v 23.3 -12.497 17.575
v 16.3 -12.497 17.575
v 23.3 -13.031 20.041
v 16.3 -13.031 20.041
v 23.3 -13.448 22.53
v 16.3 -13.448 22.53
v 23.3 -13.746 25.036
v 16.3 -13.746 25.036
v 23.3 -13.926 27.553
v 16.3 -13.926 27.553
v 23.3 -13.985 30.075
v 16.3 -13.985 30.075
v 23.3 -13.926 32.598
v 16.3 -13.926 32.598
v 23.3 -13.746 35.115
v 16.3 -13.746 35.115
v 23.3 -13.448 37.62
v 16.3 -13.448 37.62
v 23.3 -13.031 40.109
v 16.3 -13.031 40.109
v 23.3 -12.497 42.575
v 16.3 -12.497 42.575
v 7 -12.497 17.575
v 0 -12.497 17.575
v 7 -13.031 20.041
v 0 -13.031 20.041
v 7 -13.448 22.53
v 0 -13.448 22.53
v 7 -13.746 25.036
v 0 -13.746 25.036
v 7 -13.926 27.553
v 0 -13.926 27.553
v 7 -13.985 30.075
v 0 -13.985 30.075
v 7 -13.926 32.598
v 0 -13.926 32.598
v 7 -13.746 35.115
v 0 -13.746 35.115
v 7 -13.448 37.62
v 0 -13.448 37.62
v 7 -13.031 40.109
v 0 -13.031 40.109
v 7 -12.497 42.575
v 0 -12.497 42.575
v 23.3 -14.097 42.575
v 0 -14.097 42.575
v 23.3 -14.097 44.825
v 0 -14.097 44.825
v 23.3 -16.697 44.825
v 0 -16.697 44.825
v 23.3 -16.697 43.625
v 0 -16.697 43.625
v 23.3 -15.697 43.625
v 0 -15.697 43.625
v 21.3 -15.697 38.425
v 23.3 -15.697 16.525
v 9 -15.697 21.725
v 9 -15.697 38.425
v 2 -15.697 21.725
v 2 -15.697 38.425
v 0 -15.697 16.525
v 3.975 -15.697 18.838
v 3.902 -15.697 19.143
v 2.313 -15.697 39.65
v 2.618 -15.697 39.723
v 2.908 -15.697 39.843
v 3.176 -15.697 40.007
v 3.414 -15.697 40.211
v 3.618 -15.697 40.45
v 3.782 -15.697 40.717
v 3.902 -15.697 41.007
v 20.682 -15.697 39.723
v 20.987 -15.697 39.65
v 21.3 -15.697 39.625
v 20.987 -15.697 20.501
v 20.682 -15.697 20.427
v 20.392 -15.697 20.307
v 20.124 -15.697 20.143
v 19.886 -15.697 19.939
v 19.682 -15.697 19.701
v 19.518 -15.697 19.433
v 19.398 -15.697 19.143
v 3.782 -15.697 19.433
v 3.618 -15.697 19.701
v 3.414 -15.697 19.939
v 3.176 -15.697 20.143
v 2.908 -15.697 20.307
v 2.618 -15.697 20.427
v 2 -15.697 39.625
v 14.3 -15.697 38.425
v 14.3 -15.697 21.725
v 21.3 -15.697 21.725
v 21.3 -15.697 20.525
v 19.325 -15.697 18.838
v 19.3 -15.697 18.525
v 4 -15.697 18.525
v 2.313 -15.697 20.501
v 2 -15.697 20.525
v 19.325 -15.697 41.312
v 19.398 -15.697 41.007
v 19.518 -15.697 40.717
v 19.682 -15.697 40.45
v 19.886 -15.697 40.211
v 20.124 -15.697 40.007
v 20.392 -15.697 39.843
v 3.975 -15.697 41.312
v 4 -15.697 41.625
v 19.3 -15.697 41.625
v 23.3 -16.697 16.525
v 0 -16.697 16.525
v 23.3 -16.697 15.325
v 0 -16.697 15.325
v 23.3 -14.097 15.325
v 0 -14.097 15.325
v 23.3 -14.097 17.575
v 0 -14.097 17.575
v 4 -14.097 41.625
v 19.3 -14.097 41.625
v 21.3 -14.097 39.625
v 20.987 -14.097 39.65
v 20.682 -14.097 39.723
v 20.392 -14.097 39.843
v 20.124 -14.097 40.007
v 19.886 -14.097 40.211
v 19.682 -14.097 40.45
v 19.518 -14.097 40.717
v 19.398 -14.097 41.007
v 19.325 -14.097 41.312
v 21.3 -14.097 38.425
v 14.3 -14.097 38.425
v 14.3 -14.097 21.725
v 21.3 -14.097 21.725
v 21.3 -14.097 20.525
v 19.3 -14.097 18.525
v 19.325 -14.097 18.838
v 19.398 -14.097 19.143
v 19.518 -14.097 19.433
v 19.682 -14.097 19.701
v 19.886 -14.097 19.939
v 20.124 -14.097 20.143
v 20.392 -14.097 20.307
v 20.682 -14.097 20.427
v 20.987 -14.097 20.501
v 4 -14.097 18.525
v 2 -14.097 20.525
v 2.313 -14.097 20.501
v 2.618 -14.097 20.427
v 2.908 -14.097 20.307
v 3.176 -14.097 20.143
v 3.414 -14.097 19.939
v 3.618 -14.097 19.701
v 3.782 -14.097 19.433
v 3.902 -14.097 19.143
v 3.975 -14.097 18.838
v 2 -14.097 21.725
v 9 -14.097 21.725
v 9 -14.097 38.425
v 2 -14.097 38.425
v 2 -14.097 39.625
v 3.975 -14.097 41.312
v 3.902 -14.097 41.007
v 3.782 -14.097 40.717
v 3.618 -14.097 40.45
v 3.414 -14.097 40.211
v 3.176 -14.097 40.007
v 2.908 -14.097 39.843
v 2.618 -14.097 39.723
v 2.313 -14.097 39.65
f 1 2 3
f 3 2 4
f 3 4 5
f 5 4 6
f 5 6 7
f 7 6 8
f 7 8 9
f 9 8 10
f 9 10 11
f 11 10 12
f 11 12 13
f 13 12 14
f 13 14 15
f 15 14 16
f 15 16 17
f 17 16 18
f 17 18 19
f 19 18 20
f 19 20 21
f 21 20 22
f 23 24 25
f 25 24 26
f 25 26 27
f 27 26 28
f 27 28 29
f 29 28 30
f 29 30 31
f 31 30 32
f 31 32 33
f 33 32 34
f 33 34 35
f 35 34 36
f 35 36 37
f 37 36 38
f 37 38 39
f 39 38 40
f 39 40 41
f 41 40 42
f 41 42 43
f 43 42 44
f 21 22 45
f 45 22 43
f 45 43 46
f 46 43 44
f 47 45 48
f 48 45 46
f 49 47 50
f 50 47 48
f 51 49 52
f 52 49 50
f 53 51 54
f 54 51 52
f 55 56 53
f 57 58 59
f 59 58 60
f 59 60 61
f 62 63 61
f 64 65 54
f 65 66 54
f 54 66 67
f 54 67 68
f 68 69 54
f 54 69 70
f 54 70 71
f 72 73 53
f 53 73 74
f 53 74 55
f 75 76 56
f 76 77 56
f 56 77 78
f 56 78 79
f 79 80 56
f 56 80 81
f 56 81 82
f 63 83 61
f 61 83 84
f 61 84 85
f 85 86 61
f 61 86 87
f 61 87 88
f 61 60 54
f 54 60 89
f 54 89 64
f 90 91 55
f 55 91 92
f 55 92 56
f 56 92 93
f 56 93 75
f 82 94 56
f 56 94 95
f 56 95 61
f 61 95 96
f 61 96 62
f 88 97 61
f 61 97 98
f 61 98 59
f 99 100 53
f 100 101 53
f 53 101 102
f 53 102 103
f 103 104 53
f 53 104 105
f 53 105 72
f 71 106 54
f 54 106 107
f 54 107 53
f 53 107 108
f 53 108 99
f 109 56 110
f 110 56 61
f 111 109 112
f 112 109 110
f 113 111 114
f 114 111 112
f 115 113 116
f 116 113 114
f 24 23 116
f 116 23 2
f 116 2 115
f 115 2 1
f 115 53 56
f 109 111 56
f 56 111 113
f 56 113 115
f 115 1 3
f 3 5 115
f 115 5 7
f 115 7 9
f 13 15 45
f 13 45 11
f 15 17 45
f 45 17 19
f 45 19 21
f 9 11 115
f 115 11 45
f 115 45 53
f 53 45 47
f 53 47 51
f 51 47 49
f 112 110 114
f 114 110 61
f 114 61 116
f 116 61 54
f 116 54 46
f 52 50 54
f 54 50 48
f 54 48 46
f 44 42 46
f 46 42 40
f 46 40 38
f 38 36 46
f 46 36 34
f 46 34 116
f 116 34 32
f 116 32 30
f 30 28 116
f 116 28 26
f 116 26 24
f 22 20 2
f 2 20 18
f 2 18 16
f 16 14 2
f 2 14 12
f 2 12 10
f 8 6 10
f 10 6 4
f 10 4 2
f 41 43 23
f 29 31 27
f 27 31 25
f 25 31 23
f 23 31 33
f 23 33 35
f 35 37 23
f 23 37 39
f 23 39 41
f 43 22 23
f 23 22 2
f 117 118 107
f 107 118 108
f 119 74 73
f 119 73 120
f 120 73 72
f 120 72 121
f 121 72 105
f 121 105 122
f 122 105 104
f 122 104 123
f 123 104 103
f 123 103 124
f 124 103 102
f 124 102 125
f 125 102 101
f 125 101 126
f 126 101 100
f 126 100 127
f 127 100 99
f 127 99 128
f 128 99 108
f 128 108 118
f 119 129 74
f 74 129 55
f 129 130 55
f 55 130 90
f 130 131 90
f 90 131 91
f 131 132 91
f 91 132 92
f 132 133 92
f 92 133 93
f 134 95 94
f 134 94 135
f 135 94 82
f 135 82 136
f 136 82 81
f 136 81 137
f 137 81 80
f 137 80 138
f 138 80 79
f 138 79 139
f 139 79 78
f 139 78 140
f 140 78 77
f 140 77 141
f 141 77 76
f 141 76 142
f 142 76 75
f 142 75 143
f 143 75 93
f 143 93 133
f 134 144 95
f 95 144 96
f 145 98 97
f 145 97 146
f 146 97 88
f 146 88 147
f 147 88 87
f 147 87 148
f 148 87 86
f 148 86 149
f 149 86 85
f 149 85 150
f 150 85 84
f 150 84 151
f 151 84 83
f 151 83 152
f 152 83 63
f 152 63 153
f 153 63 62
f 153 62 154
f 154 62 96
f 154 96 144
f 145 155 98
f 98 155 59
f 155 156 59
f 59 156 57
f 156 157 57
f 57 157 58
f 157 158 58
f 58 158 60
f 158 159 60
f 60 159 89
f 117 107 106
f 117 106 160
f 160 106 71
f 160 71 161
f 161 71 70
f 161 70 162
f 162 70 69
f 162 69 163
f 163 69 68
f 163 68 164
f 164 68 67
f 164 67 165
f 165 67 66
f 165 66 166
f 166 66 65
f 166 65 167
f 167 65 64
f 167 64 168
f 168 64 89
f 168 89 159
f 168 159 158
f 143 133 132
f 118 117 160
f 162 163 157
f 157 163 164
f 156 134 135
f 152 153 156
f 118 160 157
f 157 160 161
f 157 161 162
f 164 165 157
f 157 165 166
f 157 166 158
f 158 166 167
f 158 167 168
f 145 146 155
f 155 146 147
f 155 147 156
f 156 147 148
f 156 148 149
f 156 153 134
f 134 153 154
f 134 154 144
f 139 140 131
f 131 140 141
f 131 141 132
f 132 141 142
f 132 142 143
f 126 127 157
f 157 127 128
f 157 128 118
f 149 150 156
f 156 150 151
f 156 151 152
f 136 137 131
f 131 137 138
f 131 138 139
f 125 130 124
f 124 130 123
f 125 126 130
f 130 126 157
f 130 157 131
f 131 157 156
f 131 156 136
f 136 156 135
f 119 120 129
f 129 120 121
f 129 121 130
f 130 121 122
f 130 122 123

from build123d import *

# Parameters (mm, degrees)
BOSS_EXTRUDE1_DEPTH = 23.3
BOSS_EXTRUDE2_REACH = 41.551
SKETCH2_W           = 9.3
SKETCH2_H           = 1.6
CUT_EXTRUDE2_DEPTH  = 1.6


with BuildPart() as part:
    # Sketch1 → Boss-Extrude1 (new body)
    with BuildSketch(Plane(origin=(0, 0, 0), x_dir=(0, 0, -1), z_dir=(1, 0, 0))):
        with BuildLine():
            Line((-43.625137797, -16.697262805), (-43.625137797, -15.697262805))
            Line((-43.625137797, -15.697262805), (-16.525137797, -15.697262805))
            Line((-16.525137797, -15.697262805), (-16.525137797, -16.697262805))
            Line((-16.525137797, -16.697262805), (-15.325137797, -16.697262805))
            Line((-15.325137797, -16.697262805), (-15.325137797, -14.097262805))
            Line((-15.325137797, -14.097262805), (-17.575137797, -14.097262805))
            Line((-17.575137797, -14.097262805), (-17.575137797, -12.497262805))
            ThreePointArc((-17.575137797, -12.497262805), (-30.075137797, -13.985375722), (-42.575137797, -12.497262805))
            Line((-42.575137797, -12.497262805), (-42.575137797, -14.097262805))
            Line((-42.575137797, -14.097262805), (-44.825137797, -14.097262805))
            Line((-44.825137797, -14.097262805), (-44.825137797, -16.697262805))
            Line((-44.825137797, -16.697262805), (-43.625137797, -16.697262805))
        make_face()
    extrude(amount=BOSS_EXTRUDE1_DEPTH)

    # Sketch2 → Boss-Extrude2 (add, up to next)
    with BuildSketch(Plane.XY.offset(42.575137797), mode=Mode.PRIVATE) as boss_extrude2_sk1:
        with Locations((11.65, -13.297262805)):
            Rectangle(SKETCH2_W, SKETCH2_H)
    boss_extrude2_tool1 = extrude(boss_extrude2_sk1.sketch, amount=-BOSS_EXTRUDE2_REACH, mode=Mode.PRIVATE) - part.part
    add(boss_extrude2_tool1.solids().sort_by_distance((11.65, -13.297263, 42.575138))[0])

    # Sketch3 → Cut-Extrude2 (cut)
    with BuildSketch(Plane.XZ.offset(15.697262805)):
        with BuildLine():
            ThreePointArc((21.3, 39.625137797), (19.885786438, 40.210924235), (19.3, 41.625137797))
            Line((19.3, 41.625137797), (4, 41.625137797))
            ThreePointArc((4, 41.625137797), (3.414213562, 40.210924235), (2, 39.625137797))
            Line((2, 39.625137797), (2, 38.425137797))
            Line((2, 38.425137797), (9, 38.425137797))
            Line((9, 38.425137797), (9, 21.725137797))
            Line((9, 21.725137797), (2, 21.725137797))
            Line((2, 21.725137797), (2, 20.525137797))
            ThreePointArc((2, 20.525137797), (3.414213562, 19.939351359), (4, 18.525137797))
            Line((4, 18.525137797), (19.3, 18.525137797))
            ThreePointArc((19.3, 18.525137797), (19.885786438, 19.939351359), (21.3, 20.525137797))
            Line((21.3, 20.525137797), (21.3, 21.725137797))
            Line((21.3, 21.725137797), (14.3, 21.725137797))
            Line((14.3, 21.725137797), (14.3, 38.425137797))
            Line((14.3, 38.425137797), (21.3, 38.425137797))
            Line((21.3, 38.425137797), (21.3, 39.625137797))
        make_face()
    extrude(amount=-CUT_EXTRUDE2_DEPTH, mode=Mode.SUBTRACT)


solid = part.part
